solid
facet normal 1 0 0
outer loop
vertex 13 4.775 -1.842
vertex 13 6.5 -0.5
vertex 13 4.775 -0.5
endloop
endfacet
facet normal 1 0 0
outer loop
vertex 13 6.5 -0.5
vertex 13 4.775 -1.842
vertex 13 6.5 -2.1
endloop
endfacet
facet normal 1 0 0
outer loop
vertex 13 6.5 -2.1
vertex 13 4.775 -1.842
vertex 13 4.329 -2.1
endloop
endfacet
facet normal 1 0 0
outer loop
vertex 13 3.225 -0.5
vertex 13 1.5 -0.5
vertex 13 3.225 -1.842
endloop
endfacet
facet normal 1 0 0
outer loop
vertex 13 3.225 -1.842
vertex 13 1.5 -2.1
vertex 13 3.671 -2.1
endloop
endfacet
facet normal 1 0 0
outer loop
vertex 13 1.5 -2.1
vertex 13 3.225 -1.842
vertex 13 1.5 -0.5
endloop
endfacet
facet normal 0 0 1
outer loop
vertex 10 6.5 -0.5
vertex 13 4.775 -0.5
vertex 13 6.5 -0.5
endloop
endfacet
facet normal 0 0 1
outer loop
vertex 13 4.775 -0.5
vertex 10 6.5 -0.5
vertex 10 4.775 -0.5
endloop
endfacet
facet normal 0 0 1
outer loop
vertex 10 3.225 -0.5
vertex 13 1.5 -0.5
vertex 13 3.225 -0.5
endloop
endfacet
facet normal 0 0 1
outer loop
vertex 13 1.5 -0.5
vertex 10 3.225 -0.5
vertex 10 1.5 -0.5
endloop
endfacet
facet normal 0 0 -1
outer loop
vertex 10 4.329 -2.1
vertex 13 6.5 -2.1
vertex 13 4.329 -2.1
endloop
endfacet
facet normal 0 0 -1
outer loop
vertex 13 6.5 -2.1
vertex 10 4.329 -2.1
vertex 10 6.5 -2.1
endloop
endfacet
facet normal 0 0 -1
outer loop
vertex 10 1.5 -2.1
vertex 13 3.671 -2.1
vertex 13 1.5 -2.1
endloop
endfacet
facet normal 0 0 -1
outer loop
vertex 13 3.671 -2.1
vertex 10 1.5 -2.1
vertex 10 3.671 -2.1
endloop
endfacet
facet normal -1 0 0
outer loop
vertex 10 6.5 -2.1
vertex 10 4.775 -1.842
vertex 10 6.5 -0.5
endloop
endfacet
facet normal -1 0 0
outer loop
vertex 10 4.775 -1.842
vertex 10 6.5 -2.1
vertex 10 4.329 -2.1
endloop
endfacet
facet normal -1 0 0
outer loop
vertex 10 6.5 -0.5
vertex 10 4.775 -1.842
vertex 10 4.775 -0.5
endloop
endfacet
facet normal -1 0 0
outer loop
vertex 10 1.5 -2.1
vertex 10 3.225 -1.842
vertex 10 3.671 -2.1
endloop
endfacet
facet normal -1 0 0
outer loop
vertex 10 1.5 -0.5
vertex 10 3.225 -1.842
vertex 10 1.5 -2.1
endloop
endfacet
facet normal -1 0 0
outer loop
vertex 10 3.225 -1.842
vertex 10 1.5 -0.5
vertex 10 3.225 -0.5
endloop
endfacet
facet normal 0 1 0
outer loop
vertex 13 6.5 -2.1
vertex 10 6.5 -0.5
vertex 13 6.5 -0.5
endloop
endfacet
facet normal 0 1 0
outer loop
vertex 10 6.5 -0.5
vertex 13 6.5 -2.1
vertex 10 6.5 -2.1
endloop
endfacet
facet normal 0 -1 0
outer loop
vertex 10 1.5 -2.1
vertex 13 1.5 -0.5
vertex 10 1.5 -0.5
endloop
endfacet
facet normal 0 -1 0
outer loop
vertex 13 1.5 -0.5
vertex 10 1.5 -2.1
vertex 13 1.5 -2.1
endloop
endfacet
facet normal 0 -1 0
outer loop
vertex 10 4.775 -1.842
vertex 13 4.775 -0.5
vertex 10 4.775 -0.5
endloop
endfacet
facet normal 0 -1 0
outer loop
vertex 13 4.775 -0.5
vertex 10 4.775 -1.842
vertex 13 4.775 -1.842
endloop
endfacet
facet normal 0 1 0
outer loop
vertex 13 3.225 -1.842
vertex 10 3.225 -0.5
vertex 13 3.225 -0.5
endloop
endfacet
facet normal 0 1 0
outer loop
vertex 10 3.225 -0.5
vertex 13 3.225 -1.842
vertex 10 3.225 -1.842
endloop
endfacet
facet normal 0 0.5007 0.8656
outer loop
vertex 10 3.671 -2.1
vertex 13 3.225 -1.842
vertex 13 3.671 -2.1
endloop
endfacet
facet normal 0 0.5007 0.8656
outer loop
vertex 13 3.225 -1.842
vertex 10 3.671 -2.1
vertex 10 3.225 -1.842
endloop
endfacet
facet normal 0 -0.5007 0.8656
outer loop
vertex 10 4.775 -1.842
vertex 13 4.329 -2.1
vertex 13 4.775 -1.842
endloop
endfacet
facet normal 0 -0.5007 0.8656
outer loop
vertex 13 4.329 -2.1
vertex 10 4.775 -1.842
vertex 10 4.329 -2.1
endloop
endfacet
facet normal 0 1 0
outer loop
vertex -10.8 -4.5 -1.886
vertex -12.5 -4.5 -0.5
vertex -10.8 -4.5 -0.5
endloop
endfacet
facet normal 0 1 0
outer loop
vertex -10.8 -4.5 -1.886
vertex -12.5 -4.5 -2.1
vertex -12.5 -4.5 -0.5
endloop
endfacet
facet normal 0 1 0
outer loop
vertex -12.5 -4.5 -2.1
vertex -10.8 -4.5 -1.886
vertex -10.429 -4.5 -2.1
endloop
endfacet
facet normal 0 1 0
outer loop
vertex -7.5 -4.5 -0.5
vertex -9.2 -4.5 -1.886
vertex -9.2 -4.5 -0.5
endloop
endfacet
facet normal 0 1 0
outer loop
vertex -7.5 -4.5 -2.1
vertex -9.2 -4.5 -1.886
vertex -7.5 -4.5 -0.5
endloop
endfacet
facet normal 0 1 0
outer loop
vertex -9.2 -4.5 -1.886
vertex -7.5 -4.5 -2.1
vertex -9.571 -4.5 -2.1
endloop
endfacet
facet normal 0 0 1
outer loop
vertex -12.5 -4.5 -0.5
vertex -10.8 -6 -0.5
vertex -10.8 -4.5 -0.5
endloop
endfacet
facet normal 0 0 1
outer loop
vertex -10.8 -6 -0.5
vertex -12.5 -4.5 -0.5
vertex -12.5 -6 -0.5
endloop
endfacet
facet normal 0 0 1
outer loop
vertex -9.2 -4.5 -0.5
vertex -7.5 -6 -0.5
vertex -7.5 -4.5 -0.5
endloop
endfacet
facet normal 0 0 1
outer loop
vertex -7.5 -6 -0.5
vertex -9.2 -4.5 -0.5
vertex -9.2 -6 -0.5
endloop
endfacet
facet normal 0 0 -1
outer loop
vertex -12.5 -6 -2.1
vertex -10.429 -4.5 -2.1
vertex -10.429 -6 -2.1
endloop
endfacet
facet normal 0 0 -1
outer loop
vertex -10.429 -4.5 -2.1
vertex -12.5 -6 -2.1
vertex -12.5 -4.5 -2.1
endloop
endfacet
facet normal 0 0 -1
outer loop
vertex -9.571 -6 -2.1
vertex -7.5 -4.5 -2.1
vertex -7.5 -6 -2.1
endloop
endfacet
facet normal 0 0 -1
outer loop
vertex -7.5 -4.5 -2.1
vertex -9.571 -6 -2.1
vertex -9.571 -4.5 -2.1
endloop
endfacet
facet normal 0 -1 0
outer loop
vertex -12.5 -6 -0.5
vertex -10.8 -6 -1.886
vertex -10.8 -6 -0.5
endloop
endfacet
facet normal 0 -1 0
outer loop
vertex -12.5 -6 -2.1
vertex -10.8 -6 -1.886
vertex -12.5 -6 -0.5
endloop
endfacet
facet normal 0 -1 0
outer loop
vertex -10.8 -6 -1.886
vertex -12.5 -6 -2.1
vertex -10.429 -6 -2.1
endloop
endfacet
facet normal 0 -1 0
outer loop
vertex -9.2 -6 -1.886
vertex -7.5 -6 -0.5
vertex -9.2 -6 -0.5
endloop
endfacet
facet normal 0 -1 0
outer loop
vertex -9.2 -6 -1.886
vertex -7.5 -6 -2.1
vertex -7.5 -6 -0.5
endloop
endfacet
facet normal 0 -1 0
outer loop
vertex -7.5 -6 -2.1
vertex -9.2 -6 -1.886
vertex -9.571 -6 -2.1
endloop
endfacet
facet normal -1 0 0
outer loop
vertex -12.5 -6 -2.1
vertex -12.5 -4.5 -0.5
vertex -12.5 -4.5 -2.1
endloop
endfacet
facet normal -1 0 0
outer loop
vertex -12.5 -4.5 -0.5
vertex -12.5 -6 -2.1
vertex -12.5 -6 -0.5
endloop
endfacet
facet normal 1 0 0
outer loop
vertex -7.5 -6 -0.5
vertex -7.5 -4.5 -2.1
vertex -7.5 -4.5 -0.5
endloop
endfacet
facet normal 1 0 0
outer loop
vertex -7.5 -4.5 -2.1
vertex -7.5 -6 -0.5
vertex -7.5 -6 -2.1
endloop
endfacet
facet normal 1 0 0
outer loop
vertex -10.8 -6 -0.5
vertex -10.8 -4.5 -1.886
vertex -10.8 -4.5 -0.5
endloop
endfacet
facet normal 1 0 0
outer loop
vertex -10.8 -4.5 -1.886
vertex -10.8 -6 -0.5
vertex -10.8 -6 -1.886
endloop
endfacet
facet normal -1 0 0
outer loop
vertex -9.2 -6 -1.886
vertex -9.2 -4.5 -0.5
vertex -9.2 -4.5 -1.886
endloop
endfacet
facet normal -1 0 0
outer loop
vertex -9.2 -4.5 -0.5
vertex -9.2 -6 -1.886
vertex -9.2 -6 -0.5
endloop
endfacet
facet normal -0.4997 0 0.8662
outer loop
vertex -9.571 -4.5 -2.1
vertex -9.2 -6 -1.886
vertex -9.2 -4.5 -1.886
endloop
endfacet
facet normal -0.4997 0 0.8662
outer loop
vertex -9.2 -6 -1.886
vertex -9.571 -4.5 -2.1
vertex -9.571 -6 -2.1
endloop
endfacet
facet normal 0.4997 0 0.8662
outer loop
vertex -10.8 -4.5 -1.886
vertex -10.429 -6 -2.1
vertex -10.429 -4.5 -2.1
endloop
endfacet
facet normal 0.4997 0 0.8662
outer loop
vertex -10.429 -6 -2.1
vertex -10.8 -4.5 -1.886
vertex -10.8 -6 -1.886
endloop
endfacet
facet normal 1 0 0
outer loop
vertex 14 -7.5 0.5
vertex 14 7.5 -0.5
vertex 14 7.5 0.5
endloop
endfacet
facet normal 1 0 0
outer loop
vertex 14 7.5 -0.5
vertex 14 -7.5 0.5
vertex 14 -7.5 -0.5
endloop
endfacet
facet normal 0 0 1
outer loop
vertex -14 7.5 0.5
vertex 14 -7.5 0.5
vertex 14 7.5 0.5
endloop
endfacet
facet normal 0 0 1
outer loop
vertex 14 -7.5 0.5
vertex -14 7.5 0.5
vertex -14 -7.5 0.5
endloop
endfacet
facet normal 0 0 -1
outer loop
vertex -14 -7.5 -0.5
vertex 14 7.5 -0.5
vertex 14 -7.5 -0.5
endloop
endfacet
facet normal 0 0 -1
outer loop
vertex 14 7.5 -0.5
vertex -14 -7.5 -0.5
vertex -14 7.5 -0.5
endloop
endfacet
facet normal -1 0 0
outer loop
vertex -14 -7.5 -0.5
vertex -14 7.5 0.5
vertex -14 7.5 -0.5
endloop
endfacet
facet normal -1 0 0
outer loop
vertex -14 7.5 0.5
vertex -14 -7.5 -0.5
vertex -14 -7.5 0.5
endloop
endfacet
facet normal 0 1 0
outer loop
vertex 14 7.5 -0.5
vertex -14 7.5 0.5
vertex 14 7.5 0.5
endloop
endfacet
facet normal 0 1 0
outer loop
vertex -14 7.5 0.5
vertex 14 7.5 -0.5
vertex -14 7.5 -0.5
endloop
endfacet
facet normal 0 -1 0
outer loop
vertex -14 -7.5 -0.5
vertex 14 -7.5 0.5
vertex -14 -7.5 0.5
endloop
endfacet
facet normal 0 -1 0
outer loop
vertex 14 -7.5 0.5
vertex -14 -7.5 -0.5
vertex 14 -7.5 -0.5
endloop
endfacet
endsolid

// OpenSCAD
module hex_mount(l=3, hex=1.55, height=1.5, thick=5) {
    difference() {
        translate([0, -thick/2, 0]) cube([l, thick, height]);
        translate([0, -hex/2, height/2]) cube([l, hex, height/2]);
        translate([0, 0, height-hex/cos(30)/2]) rotate([0, 90, 0]) cylinder(l, d=hex/cos(30), $fn=6);
    }
}

cube([28, 15, 1], center=true);
translate([10, 4, -1.6-0.5]) {
    hex_mount(l=3, height=1.6);
    translate([-20, -10, 0]) rotate([0, 0, 90]) hex_mount(l=1.5, hex=1.60, height=1.6);
}
